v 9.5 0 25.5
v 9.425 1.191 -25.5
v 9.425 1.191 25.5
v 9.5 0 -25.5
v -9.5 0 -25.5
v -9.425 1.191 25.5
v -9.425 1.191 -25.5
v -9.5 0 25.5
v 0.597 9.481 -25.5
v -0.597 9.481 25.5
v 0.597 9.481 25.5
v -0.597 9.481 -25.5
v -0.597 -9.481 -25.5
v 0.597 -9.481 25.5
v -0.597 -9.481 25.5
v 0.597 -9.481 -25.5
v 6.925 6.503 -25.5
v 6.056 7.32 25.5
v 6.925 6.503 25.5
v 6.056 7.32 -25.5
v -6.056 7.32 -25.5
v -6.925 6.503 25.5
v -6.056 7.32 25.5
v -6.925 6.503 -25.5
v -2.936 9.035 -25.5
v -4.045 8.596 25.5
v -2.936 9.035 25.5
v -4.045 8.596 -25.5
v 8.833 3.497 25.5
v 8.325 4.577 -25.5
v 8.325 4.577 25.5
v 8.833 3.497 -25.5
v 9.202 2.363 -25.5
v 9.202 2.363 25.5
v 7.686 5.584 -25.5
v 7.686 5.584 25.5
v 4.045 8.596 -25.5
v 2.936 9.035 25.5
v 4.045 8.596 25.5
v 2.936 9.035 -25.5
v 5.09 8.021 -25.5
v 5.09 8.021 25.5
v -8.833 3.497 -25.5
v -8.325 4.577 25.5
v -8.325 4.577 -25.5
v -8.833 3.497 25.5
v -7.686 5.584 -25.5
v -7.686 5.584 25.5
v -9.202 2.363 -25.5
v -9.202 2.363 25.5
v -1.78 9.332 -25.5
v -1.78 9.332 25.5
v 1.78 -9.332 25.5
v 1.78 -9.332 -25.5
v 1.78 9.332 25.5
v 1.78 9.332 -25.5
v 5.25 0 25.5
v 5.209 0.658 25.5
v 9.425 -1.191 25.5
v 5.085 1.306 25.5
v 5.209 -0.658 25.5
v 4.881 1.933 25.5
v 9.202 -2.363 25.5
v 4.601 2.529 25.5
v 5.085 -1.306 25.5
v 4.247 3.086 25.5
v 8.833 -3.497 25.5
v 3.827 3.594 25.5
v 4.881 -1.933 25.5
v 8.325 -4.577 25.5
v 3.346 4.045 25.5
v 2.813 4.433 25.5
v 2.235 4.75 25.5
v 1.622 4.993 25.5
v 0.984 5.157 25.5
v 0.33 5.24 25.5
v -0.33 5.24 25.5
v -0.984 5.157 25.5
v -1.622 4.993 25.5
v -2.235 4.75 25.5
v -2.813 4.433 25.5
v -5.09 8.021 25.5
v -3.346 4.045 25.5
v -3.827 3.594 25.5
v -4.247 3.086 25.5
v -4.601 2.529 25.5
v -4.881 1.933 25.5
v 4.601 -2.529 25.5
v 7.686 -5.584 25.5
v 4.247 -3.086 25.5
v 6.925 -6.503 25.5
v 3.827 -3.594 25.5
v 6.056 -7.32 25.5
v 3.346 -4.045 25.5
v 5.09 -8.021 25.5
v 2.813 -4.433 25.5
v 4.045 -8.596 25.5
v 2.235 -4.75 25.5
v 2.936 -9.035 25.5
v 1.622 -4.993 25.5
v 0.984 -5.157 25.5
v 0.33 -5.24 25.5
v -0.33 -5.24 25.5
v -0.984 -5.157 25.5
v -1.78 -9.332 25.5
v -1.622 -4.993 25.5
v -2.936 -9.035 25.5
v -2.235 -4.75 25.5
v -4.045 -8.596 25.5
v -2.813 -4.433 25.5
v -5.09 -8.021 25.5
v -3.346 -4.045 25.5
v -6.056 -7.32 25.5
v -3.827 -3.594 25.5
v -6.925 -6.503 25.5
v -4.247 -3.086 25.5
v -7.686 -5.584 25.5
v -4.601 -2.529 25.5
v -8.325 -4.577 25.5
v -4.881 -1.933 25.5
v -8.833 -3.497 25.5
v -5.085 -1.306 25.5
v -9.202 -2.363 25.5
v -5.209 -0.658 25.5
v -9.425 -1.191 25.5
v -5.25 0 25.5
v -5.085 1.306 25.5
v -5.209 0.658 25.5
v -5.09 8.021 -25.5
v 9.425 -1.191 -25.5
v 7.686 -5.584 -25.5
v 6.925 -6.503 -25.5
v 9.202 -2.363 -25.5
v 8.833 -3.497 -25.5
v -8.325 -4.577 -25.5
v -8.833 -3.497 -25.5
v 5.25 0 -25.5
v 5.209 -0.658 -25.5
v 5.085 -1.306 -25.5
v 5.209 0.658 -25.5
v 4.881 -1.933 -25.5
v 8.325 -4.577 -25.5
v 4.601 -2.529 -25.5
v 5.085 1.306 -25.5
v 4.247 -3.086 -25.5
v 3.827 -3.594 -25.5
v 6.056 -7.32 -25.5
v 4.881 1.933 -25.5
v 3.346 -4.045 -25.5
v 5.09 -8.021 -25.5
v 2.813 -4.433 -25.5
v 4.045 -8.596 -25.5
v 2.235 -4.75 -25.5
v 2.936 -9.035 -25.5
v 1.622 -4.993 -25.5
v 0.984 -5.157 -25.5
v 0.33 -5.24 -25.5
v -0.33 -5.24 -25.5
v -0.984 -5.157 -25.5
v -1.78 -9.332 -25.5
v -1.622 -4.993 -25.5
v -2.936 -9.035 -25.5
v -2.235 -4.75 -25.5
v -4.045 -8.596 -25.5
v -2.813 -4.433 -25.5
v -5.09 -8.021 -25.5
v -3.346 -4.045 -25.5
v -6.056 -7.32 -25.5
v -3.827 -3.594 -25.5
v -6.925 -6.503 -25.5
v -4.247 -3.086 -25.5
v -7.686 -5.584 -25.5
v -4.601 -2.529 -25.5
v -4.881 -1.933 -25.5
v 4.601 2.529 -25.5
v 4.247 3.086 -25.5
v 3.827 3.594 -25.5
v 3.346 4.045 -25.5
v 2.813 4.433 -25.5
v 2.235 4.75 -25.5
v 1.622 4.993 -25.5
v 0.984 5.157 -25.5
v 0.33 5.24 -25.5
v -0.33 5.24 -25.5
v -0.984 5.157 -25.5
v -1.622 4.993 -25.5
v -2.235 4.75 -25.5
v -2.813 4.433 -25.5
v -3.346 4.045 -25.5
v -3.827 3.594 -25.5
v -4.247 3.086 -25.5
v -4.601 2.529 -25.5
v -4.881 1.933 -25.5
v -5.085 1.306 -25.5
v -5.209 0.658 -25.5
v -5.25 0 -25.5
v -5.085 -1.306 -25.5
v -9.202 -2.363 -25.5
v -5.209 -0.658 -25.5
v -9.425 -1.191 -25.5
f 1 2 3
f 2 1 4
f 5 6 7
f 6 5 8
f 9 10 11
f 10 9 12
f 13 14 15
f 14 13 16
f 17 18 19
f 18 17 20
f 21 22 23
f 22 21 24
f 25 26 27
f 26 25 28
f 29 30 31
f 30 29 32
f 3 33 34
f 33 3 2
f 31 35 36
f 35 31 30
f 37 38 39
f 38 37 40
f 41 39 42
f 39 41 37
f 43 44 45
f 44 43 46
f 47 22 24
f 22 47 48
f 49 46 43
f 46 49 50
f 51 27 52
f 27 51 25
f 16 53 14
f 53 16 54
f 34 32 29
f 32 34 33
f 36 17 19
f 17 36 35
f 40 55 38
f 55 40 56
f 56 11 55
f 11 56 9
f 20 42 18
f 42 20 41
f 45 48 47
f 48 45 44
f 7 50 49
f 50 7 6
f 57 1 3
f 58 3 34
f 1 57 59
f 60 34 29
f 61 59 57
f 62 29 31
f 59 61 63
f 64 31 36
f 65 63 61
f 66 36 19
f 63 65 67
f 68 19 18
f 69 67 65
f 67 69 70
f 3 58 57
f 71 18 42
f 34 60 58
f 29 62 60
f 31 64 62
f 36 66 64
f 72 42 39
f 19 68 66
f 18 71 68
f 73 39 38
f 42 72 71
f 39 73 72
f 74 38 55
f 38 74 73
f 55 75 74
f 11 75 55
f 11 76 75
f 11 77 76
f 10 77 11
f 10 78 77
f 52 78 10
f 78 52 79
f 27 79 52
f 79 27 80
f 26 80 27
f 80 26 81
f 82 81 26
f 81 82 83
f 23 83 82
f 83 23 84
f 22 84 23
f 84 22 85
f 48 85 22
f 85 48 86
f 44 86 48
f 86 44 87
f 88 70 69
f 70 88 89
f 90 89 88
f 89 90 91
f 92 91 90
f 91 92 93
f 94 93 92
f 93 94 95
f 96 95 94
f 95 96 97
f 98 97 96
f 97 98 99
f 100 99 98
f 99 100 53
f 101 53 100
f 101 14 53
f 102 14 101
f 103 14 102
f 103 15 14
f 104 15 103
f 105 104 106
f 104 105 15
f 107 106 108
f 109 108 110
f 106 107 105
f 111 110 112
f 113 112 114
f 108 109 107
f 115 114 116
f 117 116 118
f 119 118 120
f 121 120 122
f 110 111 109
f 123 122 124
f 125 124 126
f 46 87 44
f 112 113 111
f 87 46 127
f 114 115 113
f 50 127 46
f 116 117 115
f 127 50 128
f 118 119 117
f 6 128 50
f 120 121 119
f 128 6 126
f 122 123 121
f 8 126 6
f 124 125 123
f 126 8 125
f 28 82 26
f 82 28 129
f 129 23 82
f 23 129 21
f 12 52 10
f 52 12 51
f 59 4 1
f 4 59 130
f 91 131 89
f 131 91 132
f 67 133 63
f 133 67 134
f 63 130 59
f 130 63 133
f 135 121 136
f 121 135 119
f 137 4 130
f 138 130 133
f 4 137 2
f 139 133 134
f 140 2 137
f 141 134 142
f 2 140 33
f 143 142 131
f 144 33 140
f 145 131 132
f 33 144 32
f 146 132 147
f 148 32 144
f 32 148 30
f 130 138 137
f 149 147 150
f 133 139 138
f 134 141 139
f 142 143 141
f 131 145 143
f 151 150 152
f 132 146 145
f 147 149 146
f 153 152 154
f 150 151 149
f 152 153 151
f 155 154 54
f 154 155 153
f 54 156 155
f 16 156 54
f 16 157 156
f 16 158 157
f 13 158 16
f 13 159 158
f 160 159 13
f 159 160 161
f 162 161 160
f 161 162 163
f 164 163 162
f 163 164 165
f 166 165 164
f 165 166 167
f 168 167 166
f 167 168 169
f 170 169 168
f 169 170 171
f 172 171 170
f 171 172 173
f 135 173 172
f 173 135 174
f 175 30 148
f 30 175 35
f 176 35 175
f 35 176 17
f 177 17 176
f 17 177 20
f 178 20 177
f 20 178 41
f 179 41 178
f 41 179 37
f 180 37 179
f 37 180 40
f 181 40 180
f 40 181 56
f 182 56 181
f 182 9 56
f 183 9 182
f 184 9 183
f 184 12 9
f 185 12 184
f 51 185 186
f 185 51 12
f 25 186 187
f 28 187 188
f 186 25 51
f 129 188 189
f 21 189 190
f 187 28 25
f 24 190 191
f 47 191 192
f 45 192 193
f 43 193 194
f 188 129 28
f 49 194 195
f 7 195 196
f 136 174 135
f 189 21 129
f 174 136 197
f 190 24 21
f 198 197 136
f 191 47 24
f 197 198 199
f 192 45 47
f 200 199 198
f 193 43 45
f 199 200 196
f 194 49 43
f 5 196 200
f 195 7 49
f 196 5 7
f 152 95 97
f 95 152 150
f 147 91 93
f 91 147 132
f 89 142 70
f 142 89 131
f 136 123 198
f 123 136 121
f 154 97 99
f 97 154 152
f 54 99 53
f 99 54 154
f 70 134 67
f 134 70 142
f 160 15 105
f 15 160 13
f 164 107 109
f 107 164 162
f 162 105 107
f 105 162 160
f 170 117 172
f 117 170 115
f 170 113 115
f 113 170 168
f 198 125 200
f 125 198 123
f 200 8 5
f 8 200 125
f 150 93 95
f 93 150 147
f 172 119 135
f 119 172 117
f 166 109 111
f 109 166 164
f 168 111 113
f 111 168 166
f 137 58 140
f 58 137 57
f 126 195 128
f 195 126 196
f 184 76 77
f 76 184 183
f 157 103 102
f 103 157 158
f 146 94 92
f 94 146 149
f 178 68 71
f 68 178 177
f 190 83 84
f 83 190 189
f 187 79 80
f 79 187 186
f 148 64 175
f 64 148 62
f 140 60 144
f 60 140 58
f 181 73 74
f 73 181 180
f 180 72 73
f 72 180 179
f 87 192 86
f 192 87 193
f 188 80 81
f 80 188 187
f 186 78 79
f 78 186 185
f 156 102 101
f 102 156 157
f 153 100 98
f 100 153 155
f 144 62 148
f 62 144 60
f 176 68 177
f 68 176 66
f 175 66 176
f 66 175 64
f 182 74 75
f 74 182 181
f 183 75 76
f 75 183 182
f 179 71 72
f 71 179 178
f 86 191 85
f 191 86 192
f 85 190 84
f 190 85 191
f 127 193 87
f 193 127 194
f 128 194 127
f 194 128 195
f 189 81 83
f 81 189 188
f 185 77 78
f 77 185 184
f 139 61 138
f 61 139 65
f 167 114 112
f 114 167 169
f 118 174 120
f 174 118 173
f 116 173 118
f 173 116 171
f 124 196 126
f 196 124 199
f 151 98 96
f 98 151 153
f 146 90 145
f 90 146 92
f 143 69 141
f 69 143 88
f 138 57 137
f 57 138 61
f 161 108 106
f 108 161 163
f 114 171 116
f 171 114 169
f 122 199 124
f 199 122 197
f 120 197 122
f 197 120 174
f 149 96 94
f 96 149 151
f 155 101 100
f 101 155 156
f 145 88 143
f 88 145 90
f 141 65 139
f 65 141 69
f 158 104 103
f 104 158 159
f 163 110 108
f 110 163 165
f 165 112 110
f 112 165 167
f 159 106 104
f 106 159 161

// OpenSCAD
$fn = 50;


difference() {
	union() {
		translate(v = [0, 0, -25.5000000000]) {
			cylinder(h = 51, r = 9.5000000000);
		}
	}
	union() {
		translate(v = [0, 0, -100.0000000000]) {
			cylinder(h = 200, r = 5.2500000000);
		}
	}
}
